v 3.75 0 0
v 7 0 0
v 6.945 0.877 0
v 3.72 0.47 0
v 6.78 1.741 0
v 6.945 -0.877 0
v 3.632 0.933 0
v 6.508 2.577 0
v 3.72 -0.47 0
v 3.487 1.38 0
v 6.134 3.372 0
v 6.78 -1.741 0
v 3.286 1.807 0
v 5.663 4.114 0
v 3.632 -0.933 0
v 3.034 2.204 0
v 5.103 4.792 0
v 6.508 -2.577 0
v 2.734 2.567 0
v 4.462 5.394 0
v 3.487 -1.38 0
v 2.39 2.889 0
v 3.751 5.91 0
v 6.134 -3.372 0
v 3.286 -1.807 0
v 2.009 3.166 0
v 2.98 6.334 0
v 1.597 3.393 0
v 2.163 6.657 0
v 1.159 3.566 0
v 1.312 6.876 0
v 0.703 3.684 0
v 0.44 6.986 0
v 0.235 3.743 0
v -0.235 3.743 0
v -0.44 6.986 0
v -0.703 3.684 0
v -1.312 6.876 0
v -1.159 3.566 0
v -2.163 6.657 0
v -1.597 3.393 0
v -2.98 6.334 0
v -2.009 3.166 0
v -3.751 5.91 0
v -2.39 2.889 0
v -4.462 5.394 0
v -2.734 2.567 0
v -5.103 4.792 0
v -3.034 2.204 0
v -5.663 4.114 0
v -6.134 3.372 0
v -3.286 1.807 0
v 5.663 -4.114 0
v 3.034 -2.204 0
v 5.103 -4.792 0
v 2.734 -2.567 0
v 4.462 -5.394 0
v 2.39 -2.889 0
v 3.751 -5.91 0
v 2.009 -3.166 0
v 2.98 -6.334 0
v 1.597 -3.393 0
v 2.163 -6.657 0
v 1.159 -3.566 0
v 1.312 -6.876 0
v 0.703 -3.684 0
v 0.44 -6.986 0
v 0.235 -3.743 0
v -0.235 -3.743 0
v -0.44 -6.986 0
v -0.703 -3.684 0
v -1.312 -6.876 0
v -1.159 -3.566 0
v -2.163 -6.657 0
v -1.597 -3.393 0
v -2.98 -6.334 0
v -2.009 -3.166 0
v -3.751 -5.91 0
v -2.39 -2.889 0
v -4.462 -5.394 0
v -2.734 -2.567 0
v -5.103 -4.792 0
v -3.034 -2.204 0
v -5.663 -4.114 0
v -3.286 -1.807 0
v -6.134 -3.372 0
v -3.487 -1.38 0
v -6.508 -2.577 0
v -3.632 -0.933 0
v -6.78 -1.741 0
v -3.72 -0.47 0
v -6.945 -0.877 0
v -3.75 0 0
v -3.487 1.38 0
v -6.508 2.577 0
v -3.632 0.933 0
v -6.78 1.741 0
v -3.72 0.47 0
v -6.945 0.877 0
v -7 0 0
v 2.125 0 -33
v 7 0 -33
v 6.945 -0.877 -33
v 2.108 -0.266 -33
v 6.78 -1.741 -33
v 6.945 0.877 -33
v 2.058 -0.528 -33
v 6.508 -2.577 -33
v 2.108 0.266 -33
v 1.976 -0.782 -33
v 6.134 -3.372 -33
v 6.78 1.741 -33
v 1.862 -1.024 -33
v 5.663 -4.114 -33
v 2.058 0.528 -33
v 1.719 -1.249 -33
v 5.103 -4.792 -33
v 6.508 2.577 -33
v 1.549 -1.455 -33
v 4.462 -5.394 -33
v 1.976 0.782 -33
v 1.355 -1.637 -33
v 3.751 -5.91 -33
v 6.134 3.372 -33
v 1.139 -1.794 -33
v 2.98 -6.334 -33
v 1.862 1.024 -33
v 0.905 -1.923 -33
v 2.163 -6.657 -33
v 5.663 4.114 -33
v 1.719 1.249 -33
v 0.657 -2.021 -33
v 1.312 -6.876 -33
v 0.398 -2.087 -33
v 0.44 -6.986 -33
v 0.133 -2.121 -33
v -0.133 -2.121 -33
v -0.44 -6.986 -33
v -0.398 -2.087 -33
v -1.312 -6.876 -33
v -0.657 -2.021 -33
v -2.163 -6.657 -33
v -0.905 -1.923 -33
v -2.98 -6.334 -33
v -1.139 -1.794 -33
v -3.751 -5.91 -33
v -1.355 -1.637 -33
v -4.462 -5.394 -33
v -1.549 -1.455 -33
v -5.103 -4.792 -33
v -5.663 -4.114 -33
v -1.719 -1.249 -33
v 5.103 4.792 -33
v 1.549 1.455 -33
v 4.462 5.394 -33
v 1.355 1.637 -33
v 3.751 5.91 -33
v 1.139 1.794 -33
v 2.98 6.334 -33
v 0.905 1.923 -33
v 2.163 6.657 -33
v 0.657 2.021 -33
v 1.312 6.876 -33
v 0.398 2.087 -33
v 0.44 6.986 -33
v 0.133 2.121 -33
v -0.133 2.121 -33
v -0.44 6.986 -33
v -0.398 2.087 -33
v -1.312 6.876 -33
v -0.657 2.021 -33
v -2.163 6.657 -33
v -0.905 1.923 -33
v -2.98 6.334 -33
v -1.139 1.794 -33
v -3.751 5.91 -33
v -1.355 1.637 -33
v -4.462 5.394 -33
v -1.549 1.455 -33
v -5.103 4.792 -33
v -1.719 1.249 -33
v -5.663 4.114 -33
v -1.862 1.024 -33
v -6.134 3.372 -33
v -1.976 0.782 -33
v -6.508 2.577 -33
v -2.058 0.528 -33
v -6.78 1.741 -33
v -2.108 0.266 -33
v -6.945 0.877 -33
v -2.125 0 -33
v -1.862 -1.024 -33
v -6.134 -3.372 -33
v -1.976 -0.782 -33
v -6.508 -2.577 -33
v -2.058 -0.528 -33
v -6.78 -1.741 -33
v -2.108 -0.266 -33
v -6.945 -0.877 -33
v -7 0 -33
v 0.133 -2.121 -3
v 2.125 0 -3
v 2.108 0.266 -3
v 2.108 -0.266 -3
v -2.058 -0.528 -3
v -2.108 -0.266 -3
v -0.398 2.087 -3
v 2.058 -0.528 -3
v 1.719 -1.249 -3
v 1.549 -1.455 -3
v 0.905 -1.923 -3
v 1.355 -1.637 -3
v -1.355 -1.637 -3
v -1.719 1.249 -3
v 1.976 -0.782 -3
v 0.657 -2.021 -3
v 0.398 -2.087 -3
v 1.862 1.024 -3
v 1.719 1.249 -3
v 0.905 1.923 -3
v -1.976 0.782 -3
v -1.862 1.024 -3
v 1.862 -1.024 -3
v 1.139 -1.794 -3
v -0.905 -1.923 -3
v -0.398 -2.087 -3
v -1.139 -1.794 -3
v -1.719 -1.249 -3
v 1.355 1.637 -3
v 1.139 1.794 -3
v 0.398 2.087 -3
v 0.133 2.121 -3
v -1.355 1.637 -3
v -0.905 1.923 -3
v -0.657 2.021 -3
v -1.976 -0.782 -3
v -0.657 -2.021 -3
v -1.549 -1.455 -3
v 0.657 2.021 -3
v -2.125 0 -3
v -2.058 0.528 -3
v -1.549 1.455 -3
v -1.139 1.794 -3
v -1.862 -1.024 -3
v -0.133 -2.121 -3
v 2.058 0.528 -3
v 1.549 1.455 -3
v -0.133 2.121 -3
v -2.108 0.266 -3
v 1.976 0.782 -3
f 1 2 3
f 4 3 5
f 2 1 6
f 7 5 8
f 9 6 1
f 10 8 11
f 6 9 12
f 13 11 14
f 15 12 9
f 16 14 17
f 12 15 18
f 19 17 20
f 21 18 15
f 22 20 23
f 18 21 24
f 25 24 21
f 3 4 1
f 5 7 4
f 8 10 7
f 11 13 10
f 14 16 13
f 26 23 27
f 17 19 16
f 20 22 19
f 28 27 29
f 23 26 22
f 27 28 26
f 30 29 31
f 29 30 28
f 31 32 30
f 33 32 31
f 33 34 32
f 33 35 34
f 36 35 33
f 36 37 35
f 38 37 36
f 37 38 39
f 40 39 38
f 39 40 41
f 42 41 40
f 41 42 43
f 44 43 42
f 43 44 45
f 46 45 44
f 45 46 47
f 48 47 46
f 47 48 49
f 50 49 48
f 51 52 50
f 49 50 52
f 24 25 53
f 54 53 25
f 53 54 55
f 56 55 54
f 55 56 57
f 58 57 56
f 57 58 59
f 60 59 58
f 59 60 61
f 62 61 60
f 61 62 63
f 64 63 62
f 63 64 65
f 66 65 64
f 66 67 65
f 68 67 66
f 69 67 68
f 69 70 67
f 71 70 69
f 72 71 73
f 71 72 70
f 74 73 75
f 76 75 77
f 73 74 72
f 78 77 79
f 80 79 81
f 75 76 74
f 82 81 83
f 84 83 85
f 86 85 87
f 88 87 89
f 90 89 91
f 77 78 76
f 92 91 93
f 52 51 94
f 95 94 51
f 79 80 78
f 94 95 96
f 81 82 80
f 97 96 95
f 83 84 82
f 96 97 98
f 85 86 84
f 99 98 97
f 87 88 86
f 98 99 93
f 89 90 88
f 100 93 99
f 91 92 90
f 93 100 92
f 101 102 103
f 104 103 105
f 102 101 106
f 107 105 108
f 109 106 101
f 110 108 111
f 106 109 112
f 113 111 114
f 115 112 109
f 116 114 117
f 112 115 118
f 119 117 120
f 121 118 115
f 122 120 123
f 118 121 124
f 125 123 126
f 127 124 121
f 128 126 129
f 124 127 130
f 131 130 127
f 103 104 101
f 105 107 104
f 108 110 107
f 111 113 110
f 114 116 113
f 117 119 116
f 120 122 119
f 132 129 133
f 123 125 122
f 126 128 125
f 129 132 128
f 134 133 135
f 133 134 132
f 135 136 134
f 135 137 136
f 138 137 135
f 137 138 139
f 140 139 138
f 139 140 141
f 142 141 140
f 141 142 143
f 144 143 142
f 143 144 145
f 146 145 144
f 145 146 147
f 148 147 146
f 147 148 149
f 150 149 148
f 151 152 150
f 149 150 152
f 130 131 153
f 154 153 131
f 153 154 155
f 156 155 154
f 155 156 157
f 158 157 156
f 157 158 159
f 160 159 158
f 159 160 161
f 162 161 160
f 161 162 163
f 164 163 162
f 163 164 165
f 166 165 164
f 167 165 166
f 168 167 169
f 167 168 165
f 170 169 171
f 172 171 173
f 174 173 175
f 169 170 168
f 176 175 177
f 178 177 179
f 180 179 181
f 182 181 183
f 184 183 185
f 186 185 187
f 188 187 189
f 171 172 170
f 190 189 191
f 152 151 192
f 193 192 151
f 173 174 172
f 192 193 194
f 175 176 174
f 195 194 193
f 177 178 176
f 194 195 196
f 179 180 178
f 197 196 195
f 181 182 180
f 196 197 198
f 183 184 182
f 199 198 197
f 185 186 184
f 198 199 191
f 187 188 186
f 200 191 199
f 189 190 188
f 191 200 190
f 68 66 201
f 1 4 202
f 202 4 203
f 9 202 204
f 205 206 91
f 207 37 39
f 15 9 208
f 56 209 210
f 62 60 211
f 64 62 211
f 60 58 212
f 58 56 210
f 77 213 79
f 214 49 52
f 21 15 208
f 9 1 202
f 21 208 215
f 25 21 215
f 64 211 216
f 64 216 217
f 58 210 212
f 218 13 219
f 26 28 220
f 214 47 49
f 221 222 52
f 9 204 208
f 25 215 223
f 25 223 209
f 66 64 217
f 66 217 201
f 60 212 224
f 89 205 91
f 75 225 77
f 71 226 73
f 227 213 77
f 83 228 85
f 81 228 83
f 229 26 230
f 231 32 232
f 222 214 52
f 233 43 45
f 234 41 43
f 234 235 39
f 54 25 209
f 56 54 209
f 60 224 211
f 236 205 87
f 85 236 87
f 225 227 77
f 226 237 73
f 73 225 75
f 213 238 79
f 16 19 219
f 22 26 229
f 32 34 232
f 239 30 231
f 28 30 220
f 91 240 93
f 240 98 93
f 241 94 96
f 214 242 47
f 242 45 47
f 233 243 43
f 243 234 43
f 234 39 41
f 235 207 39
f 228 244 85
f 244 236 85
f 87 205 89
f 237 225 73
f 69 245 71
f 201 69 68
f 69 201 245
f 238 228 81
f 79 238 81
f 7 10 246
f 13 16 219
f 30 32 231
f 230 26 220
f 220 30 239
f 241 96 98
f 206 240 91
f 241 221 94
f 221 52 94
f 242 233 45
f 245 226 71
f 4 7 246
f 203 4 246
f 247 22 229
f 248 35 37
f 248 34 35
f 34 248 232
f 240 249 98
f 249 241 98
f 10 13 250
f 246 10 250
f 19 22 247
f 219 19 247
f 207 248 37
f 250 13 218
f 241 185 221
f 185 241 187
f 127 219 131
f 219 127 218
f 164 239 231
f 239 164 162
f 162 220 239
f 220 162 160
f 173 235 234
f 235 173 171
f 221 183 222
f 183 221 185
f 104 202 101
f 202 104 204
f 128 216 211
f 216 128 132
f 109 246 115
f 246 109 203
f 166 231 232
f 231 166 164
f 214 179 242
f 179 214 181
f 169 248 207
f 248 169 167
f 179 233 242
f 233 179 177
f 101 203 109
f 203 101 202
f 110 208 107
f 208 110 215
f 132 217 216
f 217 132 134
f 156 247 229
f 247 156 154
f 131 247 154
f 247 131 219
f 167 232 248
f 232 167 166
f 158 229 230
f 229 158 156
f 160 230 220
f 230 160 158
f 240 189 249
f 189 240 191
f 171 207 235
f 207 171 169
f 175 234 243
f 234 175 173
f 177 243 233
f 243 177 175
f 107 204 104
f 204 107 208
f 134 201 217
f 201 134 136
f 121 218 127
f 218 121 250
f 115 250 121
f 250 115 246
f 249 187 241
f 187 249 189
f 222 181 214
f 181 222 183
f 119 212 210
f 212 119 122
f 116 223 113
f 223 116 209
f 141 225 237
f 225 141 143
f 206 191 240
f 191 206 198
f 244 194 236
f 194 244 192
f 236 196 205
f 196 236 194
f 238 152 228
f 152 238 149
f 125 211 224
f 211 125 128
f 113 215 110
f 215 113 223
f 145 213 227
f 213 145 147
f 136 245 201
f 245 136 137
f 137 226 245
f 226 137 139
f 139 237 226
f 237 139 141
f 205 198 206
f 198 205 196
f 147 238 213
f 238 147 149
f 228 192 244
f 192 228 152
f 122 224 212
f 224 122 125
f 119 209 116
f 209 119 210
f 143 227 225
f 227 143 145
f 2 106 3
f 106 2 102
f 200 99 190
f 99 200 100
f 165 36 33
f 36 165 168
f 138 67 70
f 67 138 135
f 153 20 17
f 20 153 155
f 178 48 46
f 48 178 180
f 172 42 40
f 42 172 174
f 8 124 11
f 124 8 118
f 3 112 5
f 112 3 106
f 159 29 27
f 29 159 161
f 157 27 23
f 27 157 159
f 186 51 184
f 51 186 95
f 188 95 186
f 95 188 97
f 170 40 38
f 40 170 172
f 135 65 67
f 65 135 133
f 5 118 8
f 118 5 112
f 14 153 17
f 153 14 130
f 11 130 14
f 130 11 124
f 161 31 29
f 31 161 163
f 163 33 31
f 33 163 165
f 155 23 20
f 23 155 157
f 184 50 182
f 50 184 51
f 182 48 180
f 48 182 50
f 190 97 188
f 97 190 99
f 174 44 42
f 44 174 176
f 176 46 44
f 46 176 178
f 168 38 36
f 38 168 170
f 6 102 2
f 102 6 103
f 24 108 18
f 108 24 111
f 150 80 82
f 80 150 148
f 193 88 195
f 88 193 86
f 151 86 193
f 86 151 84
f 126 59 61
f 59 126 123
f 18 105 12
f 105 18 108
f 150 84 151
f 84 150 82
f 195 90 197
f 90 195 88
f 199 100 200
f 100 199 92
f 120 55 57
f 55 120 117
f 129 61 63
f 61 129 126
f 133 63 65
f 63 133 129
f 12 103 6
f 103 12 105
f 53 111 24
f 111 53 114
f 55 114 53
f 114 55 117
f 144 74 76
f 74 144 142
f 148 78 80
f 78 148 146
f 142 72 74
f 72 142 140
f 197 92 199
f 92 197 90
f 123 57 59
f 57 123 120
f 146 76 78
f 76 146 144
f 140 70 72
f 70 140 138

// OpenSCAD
$fn = 50;


difference() {
	union() {
		translate(v = [0, 0, -33.0000000000]) {
			cylinder(h = 33, r = 7.0000000000);
		}
		cylinder(h = 0, r = 10.0000000000);
	}
	union() {
		translate(v = [0, 0, 0]) {
			rotate(a = [0, 0, 0]) {
				difference() {
					union() {
						#translate(v = [0, 0, -33.0000000000]) {
							cylinder(h = 33, r = 2.0000000000);
						}
						#translate(v = [0, 0, -3]) {
							cylinder(h = 3, r1 = 2.1250000000, r2 = 3.7500000000);
						}
						#translate(v = [0, 0, -33.0000000000]) {
							cylinder(h = 33, r = 2.1250000000);
						}
						#translate(v = [0, 0, -33.0000000000]) {
							cylinder(h = 33, r = 2.0000000000);
						}
					}
					union();
				}
			}
		}
	}
}
